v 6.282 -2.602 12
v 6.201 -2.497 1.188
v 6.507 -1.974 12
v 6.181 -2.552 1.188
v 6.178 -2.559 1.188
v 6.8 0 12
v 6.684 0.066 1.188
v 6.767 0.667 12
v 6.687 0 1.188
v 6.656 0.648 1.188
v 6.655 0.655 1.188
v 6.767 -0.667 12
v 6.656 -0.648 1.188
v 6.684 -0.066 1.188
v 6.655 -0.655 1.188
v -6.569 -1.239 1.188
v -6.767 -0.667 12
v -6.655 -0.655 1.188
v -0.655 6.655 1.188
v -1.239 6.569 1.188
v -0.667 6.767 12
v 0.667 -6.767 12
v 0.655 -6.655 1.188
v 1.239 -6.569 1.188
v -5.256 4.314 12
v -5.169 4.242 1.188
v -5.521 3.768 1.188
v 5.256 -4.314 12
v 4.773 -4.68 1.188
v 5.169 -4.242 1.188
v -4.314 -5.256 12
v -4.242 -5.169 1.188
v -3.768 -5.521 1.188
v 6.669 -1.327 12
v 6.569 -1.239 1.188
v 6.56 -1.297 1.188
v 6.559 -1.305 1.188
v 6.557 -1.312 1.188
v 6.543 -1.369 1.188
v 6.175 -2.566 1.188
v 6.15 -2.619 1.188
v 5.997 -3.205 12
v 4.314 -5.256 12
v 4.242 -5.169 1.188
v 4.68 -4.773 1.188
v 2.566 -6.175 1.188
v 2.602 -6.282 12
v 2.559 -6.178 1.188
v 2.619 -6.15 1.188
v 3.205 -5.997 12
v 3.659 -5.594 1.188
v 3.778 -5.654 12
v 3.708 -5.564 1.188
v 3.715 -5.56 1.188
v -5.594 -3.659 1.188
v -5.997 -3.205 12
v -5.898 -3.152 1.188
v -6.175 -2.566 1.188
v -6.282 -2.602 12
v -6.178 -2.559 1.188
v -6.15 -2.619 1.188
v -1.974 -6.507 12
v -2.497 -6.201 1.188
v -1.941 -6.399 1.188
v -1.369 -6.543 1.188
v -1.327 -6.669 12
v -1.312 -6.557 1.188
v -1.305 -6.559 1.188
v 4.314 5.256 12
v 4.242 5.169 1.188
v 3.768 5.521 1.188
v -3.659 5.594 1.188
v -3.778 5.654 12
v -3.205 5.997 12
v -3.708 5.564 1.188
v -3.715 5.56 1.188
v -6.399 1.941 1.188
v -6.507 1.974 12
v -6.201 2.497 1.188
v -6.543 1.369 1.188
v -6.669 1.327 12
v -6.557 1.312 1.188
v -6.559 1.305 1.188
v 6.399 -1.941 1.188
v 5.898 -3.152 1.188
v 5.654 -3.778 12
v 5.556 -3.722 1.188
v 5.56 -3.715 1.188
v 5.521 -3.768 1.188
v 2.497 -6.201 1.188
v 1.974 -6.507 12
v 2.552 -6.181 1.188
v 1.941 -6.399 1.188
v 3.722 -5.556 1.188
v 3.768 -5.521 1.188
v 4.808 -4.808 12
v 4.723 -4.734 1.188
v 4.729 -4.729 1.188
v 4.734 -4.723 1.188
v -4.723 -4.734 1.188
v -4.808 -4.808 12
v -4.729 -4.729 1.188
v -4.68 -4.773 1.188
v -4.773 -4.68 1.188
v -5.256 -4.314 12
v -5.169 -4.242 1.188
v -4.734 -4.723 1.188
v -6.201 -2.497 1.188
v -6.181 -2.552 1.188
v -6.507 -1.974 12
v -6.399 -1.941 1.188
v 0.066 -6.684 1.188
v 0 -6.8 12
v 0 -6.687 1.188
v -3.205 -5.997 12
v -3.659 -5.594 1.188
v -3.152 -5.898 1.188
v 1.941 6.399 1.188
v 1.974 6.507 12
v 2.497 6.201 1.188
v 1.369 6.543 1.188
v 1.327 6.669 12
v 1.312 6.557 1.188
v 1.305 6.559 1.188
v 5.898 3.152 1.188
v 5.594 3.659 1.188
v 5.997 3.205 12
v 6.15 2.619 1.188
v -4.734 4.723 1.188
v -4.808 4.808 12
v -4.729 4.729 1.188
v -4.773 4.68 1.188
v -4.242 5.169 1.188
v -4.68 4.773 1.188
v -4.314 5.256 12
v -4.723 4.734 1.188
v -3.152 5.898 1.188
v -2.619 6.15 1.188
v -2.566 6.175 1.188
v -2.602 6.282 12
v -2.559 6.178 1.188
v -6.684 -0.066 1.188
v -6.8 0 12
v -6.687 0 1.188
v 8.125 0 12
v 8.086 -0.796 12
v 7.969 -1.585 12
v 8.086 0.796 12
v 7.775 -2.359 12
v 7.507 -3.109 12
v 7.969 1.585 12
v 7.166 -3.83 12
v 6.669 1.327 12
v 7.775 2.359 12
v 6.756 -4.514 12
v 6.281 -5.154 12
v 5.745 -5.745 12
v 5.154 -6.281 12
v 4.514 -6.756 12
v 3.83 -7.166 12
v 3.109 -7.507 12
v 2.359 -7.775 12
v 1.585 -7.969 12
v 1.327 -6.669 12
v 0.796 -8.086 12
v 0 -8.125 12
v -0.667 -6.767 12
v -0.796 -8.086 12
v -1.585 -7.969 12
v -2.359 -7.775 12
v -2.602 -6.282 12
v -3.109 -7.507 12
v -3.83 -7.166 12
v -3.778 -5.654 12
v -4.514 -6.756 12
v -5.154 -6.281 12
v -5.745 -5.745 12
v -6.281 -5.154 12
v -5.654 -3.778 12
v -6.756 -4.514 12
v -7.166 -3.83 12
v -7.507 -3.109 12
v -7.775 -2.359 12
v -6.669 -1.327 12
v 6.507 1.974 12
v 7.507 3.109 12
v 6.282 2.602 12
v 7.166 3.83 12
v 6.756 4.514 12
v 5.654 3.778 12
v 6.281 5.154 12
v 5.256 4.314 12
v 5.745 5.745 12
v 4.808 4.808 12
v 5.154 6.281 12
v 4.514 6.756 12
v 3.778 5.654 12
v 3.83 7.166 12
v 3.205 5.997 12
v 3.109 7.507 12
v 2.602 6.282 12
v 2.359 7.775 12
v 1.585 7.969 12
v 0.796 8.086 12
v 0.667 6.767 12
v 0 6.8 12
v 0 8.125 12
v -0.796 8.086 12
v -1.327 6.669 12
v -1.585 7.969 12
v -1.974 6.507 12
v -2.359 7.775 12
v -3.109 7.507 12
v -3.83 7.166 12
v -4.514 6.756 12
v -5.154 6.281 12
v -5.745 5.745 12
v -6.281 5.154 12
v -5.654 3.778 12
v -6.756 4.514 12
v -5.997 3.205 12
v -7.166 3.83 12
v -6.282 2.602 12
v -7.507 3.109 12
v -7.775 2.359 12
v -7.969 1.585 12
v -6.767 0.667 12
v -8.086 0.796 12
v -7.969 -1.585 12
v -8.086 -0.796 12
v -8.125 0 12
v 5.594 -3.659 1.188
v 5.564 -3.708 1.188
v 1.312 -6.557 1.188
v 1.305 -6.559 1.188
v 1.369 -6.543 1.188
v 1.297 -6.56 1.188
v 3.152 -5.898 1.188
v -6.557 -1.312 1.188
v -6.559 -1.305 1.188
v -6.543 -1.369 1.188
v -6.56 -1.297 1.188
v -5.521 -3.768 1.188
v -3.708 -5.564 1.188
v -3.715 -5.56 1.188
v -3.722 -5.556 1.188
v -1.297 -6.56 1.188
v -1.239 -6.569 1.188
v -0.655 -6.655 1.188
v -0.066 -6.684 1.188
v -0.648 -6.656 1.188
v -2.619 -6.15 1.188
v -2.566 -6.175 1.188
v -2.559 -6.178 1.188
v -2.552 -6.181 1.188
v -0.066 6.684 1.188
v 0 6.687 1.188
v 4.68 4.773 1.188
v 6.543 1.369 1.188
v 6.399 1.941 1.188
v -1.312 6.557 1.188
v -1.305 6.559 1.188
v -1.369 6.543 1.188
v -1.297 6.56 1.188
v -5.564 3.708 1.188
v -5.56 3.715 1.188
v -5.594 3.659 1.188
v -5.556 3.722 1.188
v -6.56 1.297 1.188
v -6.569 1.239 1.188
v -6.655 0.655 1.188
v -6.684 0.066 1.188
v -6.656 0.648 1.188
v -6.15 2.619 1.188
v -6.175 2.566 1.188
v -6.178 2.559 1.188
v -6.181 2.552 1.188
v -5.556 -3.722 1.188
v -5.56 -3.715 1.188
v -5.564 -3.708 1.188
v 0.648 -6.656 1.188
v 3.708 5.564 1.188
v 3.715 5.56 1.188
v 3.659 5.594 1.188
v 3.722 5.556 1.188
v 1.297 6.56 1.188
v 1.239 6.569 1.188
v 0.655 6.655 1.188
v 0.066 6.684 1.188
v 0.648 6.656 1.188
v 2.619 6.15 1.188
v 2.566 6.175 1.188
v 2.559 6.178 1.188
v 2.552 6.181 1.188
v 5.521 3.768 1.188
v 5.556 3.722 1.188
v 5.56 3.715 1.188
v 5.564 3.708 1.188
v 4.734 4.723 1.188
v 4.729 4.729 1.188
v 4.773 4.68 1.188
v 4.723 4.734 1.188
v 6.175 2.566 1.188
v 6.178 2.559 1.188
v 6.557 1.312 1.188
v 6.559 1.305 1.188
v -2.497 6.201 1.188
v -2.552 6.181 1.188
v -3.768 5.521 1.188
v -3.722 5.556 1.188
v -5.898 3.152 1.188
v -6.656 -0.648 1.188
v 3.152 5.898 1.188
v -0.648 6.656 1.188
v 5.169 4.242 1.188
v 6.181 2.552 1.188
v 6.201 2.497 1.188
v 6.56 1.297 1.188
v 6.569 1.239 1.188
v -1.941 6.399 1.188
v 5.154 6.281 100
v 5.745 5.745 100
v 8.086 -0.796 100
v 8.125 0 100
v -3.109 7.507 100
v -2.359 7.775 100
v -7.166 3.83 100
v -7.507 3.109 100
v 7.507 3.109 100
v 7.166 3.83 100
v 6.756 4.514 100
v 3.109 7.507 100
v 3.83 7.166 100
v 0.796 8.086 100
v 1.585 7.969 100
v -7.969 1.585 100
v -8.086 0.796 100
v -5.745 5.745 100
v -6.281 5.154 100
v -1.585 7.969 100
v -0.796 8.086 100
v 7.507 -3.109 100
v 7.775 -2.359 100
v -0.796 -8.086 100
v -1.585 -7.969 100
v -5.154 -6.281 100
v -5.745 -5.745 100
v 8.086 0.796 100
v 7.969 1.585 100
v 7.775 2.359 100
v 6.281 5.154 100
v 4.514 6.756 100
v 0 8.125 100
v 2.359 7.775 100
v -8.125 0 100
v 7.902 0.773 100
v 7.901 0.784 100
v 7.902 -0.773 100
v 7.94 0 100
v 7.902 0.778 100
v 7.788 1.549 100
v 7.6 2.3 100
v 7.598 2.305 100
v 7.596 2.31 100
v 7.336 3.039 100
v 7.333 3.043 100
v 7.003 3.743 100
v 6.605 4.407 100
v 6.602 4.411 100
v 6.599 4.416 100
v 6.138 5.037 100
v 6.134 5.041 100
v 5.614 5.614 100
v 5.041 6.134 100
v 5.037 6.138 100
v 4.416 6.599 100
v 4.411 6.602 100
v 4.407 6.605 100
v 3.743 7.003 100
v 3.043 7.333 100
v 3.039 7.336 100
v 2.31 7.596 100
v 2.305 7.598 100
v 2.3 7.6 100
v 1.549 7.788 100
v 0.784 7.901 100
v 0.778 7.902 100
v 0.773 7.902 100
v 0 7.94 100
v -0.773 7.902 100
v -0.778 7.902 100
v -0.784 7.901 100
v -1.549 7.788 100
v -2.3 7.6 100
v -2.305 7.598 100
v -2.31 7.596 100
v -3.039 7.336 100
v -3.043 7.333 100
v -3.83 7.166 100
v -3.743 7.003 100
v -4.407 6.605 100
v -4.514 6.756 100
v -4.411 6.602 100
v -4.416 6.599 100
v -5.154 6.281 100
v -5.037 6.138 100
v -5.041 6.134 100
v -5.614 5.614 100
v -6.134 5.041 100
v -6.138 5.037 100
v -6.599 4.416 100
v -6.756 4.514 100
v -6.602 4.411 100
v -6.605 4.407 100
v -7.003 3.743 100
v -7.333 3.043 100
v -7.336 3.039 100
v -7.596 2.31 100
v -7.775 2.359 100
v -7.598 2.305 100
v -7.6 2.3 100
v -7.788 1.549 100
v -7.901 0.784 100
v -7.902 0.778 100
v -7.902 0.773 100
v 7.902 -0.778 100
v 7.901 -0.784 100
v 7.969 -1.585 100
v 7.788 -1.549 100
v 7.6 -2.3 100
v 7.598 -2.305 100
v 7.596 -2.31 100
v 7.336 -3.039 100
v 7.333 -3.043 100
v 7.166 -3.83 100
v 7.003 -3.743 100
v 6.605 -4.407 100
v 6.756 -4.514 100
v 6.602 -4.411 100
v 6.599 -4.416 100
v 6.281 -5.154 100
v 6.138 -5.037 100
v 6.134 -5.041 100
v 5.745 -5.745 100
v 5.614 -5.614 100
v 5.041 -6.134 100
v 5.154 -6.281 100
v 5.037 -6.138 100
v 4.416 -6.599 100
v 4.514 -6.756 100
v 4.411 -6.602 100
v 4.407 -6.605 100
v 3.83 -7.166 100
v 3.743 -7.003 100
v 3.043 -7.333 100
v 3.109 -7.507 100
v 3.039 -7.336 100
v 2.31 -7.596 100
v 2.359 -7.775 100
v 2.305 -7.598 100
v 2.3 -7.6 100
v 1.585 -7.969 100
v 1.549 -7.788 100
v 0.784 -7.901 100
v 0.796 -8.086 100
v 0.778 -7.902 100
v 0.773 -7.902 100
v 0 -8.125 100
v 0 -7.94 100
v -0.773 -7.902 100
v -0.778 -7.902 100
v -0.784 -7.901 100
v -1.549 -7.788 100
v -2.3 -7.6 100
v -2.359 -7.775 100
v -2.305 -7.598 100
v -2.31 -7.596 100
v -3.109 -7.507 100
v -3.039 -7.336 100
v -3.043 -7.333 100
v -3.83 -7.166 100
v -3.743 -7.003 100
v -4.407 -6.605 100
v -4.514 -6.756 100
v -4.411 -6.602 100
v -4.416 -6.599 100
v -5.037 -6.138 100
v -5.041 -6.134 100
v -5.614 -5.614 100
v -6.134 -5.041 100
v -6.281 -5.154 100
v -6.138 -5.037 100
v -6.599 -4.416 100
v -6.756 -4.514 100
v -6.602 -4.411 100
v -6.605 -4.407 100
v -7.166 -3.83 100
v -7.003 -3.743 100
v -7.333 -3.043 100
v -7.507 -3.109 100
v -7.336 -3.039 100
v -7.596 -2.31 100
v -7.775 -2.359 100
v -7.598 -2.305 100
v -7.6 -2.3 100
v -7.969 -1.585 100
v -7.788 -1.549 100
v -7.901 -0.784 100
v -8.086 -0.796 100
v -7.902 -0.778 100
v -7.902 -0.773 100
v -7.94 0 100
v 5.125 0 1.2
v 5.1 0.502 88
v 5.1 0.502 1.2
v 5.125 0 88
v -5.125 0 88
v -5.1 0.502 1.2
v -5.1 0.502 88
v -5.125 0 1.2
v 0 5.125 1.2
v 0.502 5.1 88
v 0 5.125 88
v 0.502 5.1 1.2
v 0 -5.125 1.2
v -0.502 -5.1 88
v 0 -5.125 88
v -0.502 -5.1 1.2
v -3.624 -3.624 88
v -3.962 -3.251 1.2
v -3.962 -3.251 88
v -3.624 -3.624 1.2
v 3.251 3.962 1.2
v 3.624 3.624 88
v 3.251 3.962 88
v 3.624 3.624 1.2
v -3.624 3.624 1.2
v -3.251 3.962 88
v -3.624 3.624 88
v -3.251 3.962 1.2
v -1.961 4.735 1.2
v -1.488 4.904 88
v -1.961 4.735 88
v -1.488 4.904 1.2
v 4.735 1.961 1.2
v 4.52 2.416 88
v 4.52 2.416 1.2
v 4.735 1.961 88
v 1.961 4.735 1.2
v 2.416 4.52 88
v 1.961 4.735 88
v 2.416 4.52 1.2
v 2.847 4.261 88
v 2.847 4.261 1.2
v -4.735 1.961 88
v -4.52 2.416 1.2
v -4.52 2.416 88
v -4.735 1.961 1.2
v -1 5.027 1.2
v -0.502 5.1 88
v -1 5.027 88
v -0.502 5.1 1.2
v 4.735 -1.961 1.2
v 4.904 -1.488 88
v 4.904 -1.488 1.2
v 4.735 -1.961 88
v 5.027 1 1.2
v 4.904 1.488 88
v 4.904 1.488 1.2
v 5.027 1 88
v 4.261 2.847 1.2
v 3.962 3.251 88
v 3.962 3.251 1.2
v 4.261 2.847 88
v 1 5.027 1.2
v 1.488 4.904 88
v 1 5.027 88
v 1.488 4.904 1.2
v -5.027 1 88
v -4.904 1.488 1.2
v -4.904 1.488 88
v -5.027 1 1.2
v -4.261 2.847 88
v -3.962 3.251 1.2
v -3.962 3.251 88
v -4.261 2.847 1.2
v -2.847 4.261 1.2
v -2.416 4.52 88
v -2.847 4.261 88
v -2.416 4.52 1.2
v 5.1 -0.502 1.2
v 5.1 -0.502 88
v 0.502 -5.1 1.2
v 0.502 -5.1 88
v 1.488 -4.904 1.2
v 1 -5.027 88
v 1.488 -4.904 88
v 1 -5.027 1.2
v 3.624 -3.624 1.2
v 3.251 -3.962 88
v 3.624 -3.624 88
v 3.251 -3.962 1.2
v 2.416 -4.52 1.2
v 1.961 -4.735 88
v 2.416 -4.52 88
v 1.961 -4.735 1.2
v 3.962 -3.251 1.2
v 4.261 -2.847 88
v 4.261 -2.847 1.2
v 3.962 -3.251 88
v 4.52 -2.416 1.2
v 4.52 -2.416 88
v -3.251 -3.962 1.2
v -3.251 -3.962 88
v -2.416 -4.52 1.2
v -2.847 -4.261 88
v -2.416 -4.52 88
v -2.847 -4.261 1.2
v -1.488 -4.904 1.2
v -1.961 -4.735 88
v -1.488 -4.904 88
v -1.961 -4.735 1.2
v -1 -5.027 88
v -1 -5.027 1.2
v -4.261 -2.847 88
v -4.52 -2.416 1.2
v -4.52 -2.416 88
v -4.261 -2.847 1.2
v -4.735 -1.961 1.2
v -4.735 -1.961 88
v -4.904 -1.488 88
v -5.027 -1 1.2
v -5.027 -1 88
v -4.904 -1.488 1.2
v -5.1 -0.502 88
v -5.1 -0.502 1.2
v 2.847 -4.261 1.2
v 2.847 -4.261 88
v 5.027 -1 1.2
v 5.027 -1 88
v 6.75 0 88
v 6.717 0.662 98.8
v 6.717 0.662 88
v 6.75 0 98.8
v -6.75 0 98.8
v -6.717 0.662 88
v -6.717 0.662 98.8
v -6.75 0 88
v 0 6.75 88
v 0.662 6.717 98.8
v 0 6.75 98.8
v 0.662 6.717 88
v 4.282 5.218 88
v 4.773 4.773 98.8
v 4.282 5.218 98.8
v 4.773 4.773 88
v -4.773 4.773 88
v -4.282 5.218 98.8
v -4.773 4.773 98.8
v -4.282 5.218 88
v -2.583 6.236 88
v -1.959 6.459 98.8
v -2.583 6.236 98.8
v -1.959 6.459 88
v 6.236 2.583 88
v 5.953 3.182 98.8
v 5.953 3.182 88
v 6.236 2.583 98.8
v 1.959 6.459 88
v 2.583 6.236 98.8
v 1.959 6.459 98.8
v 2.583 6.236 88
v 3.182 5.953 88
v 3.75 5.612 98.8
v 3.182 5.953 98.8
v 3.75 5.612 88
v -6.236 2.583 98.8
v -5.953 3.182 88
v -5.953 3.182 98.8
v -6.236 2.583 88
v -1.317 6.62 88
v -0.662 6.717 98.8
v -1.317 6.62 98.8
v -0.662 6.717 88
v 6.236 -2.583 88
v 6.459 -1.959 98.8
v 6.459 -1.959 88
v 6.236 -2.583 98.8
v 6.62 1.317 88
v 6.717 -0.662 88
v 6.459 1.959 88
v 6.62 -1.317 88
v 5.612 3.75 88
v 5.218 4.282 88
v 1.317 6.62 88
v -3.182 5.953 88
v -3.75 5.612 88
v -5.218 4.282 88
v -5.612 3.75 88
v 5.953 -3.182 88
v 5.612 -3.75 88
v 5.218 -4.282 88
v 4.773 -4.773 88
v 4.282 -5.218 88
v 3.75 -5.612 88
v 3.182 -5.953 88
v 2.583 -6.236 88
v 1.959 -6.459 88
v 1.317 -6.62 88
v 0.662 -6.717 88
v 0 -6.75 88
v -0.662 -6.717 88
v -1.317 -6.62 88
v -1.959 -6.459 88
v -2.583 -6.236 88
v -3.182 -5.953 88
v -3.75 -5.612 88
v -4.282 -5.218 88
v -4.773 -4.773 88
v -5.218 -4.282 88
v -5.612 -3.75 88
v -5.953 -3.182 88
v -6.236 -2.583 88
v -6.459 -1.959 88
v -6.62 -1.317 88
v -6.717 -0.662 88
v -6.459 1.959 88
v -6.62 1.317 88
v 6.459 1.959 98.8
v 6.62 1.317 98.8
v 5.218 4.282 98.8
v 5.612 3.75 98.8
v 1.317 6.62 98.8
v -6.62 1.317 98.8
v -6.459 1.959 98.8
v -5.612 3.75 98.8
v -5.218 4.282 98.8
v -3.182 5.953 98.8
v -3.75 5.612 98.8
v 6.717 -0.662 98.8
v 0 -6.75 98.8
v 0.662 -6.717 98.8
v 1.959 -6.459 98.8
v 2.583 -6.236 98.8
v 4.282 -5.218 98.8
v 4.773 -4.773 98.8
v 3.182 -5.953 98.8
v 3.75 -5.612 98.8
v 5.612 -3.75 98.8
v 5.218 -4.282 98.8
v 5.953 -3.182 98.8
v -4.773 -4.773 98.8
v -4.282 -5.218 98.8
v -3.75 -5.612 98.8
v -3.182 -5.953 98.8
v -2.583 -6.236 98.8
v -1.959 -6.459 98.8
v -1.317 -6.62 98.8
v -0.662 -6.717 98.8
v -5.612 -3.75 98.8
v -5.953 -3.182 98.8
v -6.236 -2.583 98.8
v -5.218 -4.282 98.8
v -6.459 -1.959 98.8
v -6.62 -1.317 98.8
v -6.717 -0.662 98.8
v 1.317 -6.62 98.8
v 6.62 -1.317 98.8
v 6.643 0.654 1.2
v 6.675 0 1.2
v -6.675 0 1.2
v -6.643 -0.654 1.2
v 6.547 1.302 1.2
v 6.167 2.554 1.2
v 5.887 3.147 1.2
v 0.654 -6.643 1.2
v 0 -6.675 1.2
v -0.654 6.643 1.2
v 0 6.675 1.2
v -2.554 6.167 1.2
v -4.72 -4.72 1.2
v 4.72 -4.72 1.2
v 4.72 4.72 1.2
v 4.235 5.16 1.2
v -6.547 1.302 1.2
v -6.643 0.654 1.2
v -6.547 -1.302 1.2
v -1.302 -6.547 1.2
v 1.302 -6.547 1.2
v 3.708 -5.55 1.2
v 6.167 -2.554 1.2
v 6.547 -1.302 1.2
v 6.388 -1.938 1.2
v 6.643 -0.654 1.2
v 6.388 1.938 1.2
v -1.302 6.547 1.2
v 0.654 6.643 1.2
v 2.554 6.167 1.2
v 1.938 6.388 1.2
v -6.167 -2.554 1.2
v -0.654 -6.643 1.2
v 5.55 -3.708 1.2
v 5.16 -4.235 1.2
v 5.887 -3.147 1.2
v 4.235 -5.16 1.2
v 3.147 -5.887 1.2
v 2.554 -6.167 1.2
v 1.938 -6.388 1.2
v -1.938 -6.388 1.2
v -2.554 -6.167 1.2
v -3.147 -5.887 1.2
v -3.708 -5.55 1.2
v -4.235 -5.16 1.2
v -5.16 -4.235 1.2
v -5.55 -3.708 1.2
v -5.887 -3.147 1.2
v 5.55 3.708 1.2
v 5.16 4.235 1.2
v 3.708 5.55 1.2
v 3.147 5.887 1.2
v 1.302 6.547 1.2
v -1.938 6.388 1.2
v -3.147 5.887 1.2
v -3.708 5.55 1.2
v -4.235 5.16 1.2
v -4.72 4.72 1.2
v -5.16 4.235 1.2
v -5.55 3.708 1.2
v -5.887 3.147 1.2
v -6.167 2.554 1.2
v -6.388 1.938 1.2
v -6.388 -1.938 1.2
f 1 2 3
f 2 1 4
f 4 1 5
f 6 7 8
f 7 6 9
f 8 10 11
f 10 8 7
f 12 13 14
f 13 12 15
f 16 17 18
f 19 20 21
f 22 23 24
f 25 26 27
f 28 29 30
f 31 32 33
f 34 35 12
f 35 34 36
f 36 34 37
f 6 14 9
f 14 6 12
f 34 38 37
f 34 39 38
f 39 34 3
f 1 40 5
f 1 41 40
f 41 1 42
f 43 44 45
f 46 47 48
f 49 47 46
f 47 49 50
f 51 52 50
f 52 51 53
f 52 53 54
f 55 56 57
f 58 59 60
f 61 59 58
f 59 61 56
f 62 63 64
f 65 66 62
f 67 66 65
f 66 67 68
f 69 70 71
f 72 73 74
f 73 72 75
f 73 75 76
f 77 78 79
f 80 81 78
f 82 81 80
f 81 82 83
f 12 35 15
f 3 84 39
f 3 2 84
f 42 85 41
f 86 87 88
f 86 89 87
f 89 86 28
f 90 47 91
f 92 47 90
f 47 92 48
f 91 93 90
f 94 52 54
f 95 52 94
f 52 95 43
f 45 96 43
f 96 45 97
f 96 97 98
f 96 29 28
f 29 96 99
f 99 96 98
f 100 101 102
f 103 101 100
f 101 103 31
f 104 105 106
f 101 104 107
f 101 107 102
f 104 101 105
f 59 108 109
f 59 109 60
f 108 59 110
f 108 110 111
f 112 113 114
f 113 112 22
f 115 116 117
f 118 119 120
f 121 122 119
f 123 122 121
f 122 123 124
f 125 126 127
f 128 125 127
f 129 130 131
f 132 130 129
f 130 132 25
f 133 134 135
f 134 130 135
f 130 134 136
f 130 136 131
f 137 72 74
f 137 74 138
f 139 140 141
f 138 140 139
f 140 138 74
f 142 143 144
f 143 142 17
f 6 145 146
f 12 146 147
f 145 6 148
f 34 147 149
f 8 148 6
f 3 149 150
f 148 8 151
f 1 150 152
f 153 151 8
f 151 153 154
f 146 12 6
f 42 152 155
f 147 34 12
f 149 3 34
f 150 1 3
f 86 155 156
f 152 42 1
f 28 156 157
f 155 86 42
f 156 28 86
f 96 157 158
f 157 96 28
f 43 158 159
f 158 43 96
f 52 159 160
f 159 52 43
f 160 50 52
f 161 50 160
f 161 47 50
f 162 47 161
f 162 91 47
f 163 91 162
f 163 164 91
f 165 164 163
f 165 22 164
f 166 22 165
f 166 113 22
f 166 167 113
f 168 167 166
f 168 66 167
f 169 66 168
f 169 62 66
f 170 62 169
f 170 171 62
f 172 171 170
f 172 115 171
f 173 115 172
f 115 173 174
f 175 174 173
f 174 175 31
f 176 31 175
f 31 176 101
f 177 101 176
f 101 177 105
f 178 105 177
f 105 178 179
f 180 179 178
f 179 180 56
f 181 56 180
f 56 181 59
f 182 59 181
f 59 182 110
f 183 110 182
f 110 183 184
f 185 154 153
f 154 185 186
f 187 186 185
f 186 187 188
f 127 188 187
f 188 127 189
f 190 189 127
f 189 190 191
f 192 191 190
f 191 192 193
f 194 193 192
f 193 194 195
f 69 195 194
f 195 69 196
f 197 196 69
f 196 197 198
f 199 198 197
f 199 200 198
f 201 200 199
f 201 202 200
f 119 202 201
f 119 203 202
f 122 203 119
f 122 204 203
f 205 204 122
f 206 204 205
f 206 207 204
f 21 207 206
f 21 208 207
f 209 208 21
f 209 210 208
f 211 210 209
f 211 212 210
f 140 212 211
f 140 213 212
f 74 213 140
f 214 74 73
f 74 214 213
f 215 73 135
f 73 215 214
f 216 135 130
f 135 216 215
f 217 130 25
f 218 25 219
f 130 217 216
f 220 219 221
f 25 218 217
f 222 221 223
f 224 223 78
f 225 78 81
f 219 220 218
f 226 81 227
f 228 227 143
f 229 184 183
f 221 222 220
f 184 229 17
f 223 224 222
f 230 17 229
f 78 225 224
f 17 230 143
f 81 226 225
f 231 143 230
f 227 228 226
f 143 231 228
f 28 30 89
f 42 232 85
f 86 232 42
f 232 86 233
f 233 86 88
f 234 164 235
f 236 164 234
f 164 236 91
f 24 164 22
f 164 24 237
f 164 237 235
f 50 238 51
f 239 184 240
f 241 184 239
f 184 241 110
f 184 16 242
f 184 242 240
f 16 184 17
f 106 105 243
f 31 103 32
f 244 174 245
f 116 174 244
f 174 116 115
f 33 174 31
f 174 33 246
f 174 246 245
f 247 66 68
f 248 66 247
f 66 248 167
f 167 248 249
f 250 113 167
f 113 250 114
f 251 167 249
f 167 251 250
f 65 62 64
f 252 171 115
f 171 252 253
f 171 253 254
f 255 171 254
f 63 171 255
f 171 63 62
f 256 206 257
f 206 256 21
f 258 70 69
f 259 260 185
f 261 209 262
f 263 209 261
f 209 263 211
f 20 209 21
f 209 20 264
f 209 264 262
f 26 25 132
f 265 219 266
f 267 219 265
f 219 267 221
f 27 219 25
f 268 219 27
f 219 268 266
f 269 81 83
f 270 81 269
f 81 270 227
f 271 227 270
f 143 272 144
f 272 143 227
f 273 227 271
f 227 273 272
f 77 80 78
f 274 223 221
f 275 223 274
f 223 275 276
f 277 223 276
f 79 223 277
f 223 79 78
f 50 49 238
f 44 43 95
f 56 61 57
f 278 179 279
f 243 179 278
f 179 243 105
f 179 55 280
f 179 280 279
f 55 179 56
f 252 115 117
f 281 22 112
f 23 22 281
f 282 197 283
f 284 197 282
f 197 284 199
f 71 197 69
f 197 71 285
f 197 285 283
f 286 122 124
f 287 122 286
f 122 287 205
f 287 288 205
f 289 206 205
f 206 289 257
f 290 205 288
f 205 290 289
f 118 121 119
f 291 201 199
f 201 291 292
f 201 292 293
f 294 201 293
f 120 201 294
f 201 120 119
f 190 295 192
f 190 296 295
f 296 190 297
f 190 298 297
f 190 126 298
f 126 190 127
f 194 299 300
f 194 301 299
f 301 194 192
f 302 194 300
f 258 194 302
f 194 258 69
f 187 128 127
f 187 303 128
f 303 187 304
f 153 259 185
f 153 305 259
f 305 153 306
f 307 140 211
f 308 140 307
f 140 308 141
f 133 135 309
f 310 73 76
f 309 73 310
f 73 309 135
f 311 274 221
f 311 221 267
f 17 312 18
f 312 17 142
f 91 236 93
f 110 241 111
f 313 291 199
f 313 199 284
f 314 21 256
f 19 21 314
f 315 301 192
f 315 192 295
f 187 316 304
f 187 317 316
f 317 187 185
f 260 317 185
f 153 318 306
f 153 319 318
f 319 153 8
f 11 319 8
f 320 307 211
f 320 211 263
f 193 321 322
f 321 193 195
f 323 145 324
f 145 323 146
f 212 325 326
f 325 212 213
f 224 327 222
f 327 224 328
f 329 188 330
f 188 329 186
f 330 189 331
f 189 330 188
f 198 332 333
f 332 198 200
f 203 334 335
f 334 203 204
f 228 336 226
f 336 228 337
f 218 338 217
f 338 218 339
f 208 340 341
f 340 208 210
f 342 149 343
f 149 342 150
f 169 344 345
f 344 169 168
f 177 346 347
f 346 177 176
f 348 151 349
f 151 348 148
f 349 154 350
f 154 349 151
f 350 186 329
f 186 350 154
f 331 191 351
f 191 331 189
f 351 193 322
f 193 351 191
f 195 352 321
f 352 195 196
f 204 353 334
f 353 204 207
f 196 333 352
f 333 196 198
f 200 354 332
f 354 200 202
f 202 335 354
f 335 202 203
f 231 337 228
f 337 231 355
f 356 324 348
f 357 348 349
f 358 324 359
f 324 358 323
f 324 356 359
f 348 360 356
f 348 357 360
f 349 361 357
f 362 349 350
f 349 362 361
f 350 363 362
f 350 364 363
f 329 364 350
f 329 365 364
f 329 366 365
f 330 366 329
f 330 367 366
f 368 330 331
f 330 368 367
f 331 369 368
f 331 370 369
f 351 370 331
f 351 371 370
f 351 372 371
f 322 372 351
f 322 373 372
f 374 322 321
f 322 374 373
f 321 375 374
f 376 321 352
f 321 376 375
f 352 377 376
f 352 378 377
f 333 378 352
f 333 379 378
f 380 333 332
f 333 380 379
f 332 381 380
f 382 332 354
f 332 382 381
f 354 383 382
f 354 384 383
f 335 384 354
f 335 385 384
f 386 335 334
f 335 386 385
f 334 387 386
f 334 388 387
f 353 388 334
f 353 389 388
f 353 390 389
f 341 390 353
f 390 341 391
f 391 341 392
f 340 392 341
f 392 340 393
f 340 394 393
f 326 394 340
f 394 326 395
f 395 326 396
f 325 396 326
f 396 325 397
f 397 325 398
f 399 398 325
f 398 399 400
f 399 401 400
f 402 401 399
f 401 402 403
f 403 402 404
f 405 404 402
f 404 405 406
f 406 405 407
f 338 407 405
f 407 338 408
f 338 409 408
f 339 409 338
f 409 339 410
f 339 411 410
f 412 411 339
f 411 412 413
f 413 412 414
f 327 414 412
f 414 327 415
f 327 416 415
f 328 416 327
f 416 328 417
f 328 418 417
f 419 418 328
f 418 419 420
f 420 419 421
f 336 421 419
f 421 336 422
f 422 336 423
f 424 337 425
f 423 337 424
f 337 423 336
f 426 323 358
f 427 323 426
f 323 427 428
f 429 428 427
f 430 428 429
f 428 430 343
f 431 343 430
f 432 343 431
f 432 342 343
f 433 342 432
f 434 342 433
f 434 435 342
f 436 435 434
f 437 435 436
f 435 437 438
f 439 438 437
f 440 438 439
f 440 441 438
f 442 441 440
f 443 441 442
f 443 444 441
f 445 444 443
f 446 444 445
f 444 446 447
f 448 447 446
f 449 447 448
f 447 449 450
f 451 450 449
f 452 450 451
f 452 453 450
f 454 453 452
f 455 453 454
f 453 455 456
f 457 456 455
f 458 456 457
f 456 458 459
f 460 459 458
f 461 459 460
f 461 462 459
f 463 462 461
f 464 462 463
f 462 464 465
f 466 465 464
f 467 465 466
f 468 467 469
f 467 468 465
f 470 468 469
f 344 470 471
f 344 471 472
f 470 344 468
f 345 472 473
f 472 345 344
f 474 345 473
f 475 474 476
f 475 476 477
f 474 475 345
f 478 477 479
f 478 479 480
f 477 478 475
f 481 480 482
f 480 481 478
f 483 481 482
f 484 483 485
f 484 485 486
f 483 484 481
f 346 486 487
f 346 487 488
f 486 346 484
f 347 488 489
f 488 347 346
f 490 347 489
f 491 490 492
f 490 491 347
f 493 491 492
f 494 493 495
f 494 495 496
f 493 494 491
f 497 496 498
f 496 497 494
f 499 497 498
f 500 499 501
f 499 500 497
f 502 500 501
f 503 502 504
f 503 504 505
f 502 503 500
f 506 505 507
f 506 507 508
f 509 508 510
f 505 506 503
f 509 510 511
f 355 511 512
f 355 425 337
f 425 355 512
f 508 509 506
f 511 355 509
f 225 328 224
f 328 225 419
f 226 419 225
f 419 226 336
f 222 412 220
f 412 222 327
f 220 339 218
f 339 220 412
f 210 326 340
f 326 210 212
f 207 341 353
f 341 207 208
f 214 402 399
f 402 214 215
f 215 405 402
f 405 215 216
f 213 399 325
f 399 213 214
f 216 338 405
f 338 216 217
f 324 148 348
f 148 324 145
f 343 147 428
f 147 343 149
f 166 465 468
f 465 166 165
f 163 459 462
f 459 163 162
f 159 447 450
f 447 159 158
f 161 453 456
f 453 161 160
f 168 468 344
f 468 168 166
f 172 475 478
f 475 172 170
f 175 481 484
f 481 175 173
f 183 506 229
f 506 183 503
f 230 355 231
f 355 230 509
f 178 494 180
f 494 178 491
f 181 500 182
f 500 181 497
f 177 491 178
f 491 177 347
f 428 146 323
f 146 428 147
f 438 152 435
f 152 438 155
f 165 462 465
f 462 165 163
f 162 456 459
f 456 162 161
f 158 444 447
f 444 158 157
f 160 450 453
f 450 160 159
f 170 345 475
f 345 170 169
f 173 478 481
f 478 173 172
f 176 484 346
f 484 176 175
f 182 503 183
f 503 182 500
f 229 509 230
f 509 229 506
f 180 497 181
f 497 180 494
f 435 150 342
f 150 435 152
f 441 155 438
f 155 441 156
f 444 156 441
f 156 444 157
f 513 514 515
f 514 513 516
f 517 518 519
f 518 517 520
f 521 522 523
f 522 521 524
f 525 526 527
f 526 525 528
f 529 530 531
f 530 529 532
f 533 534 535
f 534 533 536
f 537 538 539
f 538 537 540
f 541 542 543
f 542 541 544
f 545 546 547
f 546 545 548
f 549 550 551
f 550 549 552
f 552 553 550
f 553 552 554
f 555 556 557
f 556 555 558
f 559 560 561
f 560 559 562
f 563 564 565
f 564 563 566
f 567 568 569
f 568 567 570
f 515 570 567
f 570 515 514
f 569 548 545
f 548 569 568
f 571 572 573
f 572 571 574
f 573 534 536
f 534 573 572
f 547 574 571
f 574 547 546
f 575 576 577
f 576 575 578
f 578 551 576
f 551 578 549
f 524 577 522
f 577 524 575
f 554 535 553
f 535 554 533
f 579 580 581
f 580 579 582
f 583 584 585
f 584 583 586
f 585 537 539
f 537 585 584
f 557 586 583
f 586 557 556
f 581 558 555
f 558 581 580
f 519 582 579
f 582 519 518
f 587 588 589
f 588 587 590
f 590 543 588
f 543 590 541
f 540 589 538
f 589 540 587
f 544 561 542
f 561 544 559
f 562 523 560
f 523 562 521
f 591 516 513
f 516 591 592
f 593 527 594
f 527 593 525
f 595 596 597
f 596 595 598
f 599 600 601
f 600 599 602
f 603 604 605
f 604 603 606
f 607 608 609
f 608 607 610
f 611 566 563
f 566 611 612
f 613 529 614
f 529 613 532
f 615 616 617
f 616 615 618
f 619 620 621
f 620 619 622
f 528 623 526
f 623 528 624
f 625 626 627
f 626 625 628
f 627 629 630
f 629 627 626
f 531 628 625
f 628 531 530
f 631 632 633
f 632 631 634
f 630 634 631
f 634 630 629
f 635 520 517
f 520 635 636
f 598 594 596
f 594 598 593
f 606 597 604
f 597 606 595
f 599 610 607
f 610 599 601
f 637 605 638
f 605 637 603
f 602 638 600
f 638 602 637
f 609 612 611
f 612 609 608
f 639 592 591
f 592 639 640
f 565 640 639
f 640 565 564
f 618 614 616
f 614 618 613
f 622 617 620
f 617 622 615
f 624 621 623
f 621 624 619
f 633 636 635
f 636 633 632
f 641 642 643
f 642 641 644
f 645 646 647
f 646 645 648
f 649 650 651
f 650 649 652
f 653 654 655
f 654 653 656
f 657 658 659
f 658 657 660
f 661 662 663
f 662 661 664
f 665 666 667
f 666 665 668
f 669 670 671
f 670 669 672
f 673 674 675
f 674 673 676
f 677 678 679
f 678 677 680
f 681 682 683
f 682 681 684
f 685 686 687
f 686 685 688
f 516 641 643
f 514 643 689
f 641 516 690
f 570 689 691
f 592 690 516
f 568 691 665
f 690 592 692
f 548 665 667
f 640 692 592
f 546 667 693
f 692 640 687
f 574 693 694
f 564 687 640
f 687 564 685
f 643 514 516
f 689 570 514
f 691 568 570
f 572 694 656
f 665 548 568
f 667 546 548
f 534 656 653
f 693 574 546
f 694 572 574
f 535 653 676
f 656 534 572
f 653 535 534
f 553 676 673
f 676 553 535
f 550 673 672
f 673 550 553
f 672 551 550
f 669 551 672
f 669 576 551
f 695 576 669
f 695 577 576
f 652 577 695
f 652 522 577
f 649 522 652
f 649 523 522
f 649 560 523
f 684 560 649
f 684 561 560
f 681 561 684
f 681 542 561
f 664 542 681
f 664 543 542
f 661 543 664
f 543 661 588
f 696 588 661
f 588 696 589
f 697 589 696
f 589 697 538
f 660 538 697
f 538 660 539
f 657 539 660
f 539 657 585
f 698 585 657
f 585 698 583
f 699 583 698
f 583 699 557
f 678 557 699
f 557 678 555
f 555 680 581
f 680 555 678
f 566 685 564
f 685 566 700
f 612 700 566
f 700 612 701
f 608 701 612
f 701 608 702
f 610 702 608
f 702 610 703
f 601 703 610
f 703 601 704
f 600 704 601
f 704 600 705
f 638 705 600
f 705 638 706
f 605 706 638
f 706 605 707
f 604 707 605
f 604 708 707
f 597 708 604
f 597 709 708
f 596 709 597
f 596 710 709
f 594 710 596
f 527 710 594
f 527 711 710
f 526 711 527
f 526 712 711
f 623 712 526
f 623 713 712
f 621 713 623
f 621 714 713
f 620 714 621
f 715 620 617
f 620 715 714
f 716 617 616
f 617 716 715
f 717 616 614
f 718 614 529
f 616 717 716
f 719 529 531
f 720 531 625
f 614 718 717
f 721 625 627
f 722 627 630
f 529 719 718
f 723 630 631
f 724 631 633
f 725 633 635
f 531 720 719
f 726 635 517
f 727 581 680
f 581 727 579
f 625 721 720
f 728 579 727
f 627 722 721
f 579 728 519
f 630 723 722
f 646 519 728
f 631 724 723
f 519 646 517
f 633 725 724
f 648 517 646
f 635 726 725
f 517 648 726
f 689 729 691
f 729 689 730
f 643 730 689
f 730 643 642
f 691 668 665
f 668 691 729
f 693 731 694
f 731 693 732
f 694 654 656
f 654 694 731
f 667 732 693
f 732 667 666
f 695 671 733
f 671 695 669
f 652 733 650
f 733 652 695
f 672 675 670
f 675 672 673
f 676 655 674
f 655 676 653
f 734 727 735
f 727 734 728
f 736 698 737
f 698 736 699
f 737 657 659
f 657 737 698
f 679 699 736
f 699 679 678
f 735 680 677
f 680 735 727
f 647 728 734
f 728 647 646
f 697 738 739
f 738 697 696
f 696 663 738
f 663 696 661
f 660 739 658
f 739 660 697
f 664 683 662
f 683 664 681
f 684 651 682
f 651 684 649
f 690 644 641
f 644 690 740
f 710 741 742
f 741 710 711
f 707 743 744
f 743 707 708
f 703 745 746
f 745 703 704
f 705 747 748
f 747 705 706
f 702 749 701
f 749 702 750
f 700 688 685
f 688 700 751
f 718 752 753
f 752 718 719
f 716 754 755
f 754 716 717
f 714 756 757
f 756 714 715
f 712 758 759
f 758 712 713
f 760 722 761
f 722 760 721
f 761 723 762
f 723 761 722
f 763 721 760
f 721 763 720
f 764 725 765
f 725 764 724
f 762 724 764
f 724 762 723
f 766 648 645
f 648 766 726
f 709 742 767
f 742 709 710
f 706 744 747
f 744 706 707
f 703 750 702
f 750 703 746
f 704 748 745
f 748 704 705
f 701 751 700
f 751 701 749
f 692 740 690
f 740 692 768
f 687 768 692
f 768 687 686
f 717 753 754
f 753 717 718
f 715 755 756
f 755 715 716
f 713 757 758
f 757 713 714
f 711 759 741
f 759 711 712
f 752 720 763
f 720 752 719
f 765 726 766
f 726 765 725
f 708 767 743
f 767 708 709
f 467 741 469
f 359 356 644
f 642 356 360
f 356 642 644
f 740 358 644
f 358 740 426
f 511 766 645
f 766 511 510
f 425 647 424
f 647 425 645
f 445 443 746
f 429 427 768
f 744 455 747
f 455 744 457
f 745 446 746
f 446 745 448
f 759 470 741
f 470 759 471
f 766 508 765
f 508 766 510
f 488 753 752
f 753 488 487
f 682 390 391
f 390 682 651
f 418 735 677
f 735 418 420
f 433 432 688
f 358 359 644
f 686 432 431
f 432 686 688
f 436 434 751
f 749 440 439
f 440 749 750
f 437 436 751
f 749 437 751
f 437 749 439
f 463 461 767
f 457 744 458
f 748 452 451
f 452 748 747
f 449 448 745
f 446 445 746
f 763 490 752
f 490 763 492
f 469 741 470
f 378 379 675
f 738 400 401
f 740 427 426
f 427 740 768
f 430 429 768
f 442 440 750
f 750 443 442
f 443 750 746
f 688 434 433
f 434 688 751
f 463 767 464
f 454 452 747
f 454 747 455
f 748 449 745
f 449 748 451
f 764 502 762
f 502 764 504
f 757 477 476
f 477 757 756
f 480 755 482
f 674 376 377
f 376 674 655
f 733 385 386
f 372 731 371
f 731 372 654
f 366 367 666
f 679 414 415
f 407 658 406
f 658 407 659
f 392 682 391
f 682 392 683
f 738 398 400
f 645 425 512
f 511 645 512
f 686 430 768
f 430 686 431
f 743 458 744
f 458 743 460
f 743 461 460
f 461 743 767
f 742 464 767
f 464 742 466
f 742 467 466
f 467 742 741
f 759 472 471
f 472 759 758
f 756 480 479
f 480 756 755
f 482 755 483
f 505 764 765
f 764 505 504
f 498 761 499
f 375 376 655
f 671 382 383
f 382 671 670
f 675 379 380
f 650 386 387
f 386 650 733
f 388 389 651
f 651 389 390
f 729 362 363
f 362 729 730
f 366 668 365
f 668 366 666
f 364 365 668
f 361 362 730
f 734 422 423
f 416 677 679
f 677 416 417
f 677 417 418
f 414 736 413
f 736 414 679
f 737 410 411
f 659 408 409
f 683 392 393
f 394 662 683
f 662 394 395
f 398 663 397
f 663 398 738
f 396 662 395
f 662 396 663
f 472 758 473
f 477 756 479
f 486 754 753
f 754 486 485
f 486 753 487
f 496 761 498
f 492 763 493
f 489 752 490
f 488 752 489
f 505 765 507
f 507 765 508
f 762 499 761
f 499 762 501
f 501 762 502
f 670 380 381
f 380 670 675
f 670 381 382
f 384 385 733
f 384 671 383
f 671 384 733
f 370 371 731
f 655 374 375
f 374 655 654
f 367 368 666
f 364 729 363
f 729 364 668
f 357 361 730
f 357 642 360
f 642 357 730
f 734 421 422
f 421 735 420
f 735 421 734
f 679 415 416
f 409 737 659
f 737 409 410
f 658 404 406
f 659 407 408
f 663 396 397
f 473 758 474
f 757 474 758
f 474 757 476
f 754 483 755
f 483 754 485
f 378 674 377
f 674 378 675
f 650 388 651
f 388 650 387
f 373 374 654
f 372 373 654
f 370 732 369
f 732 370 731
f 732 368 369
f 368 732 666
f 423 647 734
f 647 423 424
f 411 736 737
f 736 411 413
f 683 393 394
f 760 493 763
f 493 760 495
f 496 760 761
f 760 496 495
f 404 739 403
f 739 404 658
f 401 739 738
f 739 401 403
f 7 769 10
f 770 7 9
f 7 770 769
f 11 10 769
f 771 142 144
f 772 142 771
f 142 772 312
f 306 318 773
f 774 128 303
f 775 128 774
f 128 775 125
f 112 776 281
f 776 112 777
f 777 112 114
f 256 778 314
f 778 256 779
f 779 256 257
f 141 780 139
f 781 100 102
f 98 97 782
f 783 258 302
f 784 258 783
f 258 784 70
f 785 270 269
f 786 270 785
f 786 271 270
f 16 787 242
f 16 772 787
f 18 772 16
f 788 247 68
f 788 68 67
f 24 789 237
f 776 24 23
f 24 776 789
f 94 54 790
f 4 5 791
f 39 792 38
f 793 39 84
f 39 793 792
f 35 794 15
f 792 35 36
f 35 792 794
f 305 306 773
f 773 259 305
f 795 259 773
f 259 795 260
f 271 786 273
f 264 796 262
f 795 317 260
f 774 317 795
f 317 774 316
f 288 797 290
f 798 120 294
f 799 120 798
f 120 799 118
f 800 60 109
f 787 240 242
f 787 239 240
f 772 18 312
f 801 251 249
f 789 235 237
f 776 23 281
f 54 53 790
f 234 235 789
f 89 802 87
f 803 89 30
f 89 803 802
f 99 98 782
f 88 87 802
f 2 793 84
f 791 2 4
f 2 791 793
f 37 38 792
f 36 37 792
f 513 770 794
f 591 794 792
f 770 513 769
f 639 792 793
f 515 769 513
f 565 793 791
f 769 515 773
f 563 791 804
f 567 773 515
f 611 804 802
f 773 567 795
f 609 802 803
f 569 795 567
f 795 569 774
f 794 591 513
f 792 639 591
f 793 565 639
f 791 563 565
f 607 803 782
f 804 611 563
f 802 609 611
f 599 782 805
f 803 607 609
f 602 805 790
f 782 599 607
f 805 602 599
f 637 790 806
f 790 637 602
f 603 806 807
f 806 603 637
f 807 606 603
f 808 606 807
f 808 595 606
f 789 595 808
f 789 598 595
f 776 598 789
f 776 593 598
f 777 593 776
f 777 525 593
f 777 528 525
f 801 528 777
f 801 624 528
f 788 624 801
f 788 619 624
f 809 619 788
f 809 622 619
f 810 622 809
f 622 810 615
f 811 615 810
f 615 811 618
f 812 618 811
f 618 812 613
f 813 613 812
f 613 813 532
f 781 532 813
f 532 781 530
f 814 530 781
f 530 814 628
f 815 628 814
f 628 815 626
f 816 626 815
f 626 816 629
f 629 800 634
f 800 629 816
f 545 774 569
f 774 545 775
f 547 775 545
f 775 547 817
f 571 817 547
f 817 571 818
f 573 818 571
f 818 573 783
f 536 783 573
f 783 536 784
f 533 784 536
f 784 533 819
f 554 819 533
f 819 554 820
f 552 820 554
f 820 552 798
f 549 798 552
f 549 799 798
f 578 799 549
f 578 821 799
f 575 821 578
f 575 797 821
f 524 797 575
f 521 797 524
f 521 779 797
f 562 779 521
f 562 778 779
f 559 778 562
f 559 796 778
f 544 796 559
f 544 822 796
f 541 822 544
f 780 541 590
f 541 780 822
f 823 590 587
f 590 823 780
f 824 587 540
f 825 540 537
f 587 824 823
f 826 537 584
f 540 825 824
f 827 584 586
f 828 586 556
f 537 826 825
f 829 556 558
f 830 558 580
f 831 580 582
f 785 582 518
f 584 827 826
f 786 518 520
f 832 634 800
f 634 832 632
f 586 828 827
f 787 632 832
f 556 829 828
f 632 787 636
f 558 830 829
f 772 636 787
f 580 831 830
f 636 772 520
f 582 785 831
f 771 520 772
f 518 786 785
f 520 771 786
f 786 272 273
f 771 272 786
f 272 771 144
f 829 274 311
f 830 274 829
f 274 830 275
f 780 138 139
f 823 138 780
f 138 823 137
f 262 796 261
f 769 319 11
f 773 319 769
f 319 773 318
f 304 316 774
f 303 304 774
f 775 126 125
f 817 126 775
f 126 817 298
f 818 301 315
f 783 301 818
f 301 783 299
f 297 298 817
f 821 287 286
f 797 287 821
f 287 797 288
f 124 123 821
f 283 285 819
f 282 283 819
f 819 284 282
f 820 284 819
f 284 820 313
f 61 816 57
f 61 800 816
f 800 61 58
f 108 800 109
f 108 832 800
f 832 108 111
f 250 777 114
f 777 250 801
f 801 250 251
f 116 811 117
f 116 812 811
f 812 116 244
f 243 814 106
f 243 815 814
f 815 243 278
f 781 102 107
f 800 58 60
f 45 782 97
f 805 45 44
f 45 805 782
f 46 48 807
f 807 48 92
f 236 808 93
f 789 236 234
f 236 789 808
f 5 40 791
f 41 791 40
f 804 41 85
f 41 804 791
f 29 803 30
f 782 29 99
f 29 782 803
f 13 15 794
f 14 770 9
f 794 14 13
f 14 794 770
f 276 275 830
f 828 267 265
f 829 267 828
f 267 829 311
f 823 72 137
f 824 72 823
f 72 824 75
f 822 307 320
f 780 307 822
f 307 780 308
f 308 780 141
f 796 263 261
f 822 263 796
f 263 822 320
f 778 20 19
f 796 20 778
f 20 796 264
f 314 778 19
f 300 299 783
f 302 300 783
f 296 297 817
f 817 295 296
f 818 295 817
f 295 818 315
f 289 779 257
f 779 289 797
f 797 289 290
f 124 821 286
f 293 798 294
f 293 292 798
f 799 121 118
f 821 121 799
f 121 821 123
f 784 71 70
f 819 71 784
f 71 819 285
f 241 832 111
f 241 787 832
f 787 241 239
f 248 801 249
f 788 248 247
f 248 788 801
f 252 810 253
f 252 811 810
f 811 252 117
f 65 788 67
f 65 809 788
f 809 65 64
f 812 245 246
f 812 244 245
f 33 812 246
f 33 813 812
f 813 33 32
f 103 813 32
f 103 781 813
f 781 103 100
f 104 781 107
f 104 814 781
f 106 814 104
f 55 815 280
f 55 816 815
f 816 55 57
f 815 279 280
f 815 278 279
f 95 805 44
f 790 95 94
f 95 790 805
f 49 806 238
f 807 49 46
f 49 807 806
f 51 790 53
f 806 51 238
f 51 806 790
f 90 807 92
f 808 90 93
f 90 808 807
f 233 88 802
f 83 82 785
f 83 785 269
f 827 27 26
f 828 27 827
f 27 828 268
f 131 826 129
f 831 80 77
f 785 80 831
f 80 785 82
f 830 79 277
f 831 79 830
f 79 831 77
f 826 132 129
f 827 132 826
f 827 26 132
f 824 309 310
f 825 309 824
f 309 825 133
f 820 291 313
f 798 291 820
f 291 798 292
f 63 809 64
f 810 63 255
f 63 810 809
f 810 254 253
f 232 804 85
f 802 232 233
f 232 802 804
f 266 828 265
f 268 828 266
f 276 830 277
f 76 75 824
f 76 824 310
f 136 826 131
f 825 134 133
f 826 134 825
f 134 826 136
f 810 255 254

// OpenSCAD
// ============================================================
// PondPumpTubeSection.scad
// Stackable friction-fit tube section for pond pump outlet
// Sections stack end-to-end; male stub on bottom slides into
// female socket on top of the piece below.
// ============================================================
// PRINT PROFILE
// Material:    PETG — sustained water/moisture exposure near pond
// Nozzle:      0.4mm — no fine details required
// Quality:     0.20mm Standard
// Infill:      40% gyroid — crush resistance helps hold friction fit
// Orientation: Print upright (male stub pointing down) — layer lines
//              run parallel to the tube axis / water-pressure direction
// Overrides:   none
// ============================================================

/* [Tube Dimensions] */
// Outer diameter of main body
od1 = 16.25; // [mm]
// Inner diameter of female socket (receives male stub)
id1 = 13.5;  // [mm]
// Outer diameter of male stub at the BASE (tight end, where it meets the shoulder)
od2_base = 13.6; // [mm]
// Outer diameter of male stub at the TIP (loose end, first to enter socket)
od2_tip = 13.35; // [mm]
// Inner diameter / water bore (through entire section)
id2 = 10.25; // [mm]

/* [Section Geometry] */
// Length of connector region (both male stub and female socket depth)
connector_len = 12; // [1:1:50] mm
// Total length of this section
total_length = 100; // [20:5:300] mm

/* [Hidden] */
$fn = 64;
eps = 0.01;

// Derived
body_start   = connector_len;               // z where main body begins
socket_start = total_length - connector_len; // z where female socket cavity begins

// Assembly: outer body minus water bore, minus female socket cavity
difference() {
    union() {
        // Male stub — tapered: loose at tip (easy entry), tight at base (firm lock)
        cylinder(h = connector_len, d1 = od2_tip, d2 = od2_base);
        // Main body — rest of the section, full OD
        translate([0, 0, body_start])
            cylinder(h = total_length - connector_len, d = od1);
    }

    // Water bore — full length (centered, continuous flow channel)
    translate([0, 0, -eps])
        cylinder(h = total_length + 2*eps, d = id2);

    // Female socket cavity — top connector_len mm, bored to id1
    // (od2 of mating stub = 13.25 slides into id1 = 13.5, 0.125 mm radial clearance)
    translate([0, 0, socket_start])
        cylinder(h = connector_len + eps, d = id1);

    // Lead-in chamfer at socket entrance — eases assembly
    translate([0, 0, total_length - 1.2])
        cylinder(h = 1.2 + eps, d1 = id1, d2 = id1 + 2.4, $fn = 64);

    // Lead-in chamfer on male stub tip — eases insertion
    translate([0, 0, -eps])
        cylinder(h = 1.2 + eps, d1 = od2_tip + 2.4, d2 = od2_tip, $fn = 64);
}

// Sanity echoes
echo(str("Male stub tip:  OD=", od2_tip,  " clearance=", (id1-od2_tip)/2,  " mm/side (easy entry)"));
echo(str("Male stub base: OD=", od2_base, " clearance=", (id1-od2_base)/2, " mm/side (tight lock)"));
echo(str("Female socket:  ID=", id1, " depth=", connector_len));
echo(str("Water bore:     ID=", id2));
echo(str("Total length=", total_length));
